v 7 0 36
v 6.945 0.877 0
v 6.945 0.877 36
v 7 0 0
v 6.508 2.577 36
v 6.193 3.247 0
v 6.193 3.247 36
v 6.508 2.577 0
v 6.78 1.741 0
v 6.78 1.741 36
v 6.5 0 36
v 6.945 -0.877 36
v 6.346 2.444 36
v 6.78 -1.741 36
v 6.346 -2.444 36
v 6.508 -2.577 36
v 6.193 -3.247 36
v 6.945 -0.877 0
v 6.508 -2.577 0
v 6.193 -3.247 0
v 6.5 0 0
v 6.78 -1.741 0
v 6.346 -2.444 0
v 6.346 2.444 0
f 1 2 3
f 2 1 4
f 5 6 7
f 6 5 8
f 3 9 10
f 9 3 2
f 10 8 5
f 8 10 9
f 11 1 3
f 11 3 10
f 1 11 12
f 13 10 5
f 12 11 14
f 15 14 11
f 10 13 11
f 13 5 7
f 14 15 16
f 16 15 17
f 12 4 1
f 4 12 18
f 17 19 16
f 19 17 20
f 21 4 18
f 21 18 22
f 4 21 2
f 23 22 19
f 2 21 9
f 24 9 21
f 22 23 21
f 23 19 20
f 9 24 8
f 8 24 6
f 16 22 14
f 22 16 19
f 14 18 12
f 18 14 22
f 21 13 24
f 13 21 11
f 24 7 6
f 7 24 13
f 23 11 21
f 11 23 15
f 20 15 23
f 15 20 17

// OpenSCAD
$fn = 50;


difference() {
	union() {
		cylinder(h = 36, r = 7.0000000000);
		translate(v = [-16.0000000000, 0, 0]) {
			cylinder(h = 36, r = 7.0000000000);
		}
	}
	union() {
		cylinder(h = 36, r = 3.2500000000);
		cylinder(h = 36, r = 1.8000000000);
		cylinder(h = 36, r = 1.8000000000);
		cylinder(h = 36, r = 1.8000000000);
		translate(v = [-20.5000000000, 0, 0]) {
			hull() {
				translate(v = [-3.7500000000, 0.0000000000, 0]) {
					cylinder(h = 36, r = 10.5000000000);
				}
				translate(v = [3.7500000000, 0.0000000000, 0]) {
					cylinder(h = 36, r = 10.5000000000);
				}
				translate(v = [-3.7500000000, -0.0000000000, 0]) {
					cylinder(h = 36, r = 10.5000000000);
				}
				translate(v = [3.7500000000, -0.0000000000, 0]) {
					cylinder(h = 36, r = 10.5000000000);
				}
			}
		}
		translate(v = [-13.0000000000, 0, 0.0000000000]) {
			cylinder(h = 36, r = 19.5000000000);
		}
	}
}
